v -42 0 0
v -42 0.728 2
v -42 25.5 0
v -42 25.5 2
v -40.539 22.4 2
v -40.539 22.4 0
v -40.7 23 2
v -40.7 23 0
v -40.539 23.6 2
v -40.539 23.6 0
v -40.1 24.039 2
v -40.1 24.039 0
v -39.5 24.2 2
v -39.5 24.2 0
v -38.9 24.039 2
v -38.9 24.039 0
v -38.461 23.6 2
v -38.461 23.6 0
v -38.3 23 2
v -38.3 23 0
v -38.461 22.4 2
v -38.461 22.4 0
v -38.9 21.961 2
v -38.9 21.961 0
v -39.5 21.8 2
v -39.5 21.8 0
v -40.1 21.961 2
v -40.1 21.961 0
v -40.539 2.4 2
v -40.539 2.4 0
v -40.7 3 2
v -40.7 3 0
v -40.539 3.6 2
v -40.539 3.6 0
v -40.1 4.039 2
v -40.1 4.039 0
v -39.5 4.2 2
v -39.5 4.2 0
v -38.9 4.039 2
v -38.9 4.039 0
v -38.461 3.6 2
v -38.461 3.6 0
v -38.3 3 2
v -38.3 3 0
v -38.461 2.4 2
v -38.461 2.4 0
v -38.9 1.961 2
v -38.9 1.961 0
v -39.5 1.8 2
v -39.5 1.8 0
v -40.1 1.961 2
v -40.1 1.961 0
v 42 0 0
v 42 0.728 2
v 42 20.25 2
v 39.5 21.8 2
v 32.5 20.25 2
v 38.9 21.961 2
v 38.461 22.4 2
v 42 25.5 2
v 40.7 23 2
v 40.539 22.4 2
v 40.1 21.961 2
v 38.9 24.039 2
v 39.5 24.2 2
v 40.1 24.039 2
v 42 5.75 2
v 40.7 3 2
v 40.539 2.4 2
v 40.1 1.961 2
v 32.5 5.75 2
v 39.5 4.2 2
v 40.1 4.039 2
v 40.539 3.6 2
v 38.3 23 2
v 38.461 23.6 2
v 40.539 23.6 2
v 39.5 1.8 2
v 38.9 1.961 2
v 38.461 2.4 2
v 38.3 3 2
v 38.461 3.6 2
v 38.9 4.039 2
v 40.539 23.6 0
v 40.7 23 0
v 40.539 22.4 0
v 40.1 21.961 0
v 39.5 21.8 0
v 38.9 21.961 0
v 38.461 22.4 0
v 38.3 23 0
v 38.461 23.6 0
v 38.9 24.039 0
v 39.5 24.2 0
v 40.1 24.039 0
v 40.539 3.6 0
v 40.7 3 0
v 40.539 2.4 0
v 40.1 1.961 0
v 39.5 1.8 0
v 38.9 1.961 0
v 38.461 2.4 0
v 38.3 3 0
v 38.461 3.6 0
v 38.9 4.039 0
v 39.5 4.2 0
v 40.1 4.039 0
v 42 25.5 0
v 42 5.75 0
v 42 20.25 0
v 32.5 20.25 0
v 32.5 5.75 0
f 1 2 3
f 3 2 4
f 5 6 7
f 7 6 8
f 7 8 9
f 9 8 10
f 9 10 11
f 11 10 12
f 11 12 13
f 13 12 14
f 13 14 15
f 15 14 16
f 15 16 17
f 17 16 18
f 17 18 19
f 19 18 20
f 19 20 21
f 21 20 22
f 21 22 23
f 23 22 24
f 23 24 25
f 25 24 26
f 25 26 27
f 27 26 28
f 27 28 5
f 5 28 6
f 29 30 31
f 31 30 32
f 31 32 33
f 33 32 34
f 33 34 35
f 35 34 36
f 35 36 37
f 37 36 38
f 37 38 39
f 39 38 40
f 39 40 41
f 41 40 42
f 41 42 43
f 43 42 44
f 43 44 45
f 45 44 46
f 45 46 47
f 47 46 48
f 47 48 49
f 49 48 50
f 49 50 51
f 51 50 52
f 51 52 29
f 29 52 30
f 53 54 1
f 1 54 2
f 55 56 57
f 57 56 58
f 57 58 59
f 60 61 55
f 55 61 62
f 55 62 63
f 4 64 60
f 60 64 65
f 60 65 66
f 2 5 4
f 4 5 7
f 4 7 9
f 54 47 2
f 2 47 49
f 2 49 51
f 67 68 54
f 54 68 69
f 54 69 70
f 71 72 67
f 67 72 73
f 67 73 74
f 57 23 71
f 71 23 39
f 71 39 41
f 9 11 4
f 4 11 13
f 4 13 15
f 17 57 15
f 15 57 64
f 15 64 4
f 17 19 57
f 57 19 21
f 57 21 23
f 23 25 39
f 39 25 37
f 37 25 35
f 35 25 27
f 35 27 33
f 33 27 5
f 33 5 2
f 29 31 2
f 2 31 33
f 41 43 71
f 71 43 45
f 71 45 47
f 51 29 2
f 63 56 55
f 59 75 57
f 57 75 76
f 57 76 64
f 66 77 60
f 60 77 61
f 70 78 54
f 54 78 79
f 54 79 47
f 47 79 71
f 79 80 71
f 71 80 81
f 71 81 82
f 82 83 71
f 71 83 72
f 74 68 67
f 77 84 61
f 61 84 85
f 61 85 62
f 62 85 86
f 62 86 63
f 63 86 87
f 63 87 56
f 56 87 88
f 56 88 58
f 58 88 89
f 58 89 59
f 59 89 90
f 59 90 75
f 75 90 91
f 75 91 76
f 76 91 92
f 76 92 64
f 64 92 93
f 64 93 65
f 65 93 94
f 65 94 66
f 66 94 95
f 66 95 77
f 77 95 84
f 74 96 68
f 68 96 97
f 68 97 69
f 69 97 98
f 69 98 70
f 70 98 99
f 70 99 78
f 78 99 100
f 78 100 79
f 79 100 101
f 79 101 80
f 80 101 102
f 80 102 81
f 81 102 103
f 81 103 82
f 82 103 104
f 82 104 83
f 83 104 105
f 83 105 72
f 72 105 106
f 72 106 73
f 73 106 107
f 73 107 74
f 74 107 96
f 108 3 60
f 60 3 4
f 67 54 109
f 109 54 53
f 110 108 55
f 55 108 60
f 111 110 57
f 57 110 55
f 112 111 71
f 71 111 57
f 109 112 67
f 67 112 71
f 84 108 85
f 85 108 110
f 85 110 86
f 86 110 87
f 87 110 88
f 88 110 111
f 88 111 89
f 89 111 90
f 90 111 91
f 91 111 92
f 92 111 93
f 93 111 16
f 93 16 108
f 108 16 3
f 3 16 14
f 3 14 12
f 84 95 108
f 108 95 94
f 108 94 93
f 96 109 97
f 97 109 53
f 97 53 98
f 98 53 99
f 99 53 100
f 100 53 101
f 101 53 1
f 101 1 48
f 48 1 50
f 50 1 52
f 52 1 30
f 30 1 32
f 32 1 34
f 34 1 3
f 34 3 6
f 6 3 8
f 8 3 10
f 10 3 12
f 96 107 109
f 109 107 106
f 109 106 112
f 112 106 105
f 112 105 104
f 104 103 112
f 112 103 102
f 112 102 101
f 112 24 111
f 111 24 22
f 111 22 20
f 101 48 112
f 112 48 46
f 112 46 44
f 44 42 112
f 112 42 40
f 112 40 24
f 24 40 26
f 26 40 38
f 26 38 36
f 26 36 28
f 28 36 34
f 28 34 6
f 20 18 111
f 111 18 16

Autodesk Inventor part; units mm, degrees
ref_plane "YZ Plane" through (0, 0, 0) normal (1, 0, 0) x (0, 1, 0)
ref_plane "XZ Plane" through (0, 0, 0) normal (0, 1, 0) x (-1, 0, 0)
ref_plane "XY Plane" through (0, 0, 0) normal (0, 0, 1) x (1, 0, 0)
sketch "Szkic1" plane through (0, 0, 0) normal (0, 0, 1) x (1, 0, 0)
  line L0 (-58.8, 0) -> (58.8, 0) projected
  line L1 (0, -5.1) -> (0, 30.6) projected
  line L2 (0, 0) -> (42, 0)
  line L3 (42, 0) -> (42, 25.5)
  line L4 (42, 25.5) -> (0, 25.5)
  line L5 (0, 25.5) -> (0, 0)
  circle A0 centre (39.5, 23) radius 1.2
  circle A1 centre (39.5, 3) radius 1.2
  point P0 (0, 25.5)
  point P1 (42, 0)
  dimension "d0" = 25.5
  dimension "d1" = 42
  dimension "d7" = 2.4
  dimension "d8" = 2.4
  dimension "d9" = 2.5
  dimension "d10" = 2.5
  dimension "d11" = 20
  dimension "d12" = 2.5
extrude "Wyciągnięcie proste1" add sketch "Szkic1" along normal blind 2
sketch "Szkic2" plane through (42, 0, 0) normal (1, 0, 0) x (0, 0, -1)
  line L0 (0, 0) -> (0, 25.5) projected
  line L1 (0, 25.5) -> (-2, 25.5) projected
  line L2 (-2, 0) -> (-2, 25.5) projected
  line L3 (0, 0) -> (-2, 0) projected
  line L4 (0, 25.5) -> (0, 0) projected
  line L5 (0, 0) -> (-2, 0.7279)
  line L6 (-2, 25.5) -> (-2, 0) projected
  point P0 (0, 0)
  dimension "d4" = 70
extrude "Wyciągnięcie proste2" cut sketch "Szkic2" against normal blind 90 contours L3 L2 L5
mirror "Odbij1" about plane through (0, 0, 0) normal (1, 0, 0) of "Wyciągnięcie proste1", "Wyciągnięcie proste2"
sketch "Sketch3" plane through (0, 0, 2) normal (0, 0, 1) x (1, 0, 0)
  line L0 (-42, 0.7279) -> (42, 0.7279) projected
  line L1 (42, 0.7279) -> (42, 25.5) projected
  line L2 (42, 25.5) -> (-42, 25.5) projected
  line L3 (-42, 0.7279) -> (-42, 25.5) projected
  circle A0 centre (-39.5, 23) radius 1.2 projected
  circle A1 centre (-39.5, 3) radius 1.2 projected
  circle A2 centre (39.5, 23) radius 1.2 projected
  circle A3 centre (39.5, 3) radius 1.2 projected
  line L4 (42, 0) -> (42, 25.5) projected
  line L5 (42, 20.25) -> (32.5, 20.25)
  line L6 (32.5, 20.25) -> (32.5, 5.75)
  line L7 (32.5, 5.75) -> (42, 5.75)
  line L8 (42, 5.75) -> (42, 20.25)
  point P0 (0, 0)
  point P1 (32.5, 13)
  dimension "d13" = 9.5
  dimension "d14" = 14.5
  dimension "d15" = 10
extrude "Extrusion3" cut sketch "Sketch3" against normal blind 10 contours L7 L6 L5 L1
properties part number "góra_robota" material "Tworzywo sztuczne PET"
